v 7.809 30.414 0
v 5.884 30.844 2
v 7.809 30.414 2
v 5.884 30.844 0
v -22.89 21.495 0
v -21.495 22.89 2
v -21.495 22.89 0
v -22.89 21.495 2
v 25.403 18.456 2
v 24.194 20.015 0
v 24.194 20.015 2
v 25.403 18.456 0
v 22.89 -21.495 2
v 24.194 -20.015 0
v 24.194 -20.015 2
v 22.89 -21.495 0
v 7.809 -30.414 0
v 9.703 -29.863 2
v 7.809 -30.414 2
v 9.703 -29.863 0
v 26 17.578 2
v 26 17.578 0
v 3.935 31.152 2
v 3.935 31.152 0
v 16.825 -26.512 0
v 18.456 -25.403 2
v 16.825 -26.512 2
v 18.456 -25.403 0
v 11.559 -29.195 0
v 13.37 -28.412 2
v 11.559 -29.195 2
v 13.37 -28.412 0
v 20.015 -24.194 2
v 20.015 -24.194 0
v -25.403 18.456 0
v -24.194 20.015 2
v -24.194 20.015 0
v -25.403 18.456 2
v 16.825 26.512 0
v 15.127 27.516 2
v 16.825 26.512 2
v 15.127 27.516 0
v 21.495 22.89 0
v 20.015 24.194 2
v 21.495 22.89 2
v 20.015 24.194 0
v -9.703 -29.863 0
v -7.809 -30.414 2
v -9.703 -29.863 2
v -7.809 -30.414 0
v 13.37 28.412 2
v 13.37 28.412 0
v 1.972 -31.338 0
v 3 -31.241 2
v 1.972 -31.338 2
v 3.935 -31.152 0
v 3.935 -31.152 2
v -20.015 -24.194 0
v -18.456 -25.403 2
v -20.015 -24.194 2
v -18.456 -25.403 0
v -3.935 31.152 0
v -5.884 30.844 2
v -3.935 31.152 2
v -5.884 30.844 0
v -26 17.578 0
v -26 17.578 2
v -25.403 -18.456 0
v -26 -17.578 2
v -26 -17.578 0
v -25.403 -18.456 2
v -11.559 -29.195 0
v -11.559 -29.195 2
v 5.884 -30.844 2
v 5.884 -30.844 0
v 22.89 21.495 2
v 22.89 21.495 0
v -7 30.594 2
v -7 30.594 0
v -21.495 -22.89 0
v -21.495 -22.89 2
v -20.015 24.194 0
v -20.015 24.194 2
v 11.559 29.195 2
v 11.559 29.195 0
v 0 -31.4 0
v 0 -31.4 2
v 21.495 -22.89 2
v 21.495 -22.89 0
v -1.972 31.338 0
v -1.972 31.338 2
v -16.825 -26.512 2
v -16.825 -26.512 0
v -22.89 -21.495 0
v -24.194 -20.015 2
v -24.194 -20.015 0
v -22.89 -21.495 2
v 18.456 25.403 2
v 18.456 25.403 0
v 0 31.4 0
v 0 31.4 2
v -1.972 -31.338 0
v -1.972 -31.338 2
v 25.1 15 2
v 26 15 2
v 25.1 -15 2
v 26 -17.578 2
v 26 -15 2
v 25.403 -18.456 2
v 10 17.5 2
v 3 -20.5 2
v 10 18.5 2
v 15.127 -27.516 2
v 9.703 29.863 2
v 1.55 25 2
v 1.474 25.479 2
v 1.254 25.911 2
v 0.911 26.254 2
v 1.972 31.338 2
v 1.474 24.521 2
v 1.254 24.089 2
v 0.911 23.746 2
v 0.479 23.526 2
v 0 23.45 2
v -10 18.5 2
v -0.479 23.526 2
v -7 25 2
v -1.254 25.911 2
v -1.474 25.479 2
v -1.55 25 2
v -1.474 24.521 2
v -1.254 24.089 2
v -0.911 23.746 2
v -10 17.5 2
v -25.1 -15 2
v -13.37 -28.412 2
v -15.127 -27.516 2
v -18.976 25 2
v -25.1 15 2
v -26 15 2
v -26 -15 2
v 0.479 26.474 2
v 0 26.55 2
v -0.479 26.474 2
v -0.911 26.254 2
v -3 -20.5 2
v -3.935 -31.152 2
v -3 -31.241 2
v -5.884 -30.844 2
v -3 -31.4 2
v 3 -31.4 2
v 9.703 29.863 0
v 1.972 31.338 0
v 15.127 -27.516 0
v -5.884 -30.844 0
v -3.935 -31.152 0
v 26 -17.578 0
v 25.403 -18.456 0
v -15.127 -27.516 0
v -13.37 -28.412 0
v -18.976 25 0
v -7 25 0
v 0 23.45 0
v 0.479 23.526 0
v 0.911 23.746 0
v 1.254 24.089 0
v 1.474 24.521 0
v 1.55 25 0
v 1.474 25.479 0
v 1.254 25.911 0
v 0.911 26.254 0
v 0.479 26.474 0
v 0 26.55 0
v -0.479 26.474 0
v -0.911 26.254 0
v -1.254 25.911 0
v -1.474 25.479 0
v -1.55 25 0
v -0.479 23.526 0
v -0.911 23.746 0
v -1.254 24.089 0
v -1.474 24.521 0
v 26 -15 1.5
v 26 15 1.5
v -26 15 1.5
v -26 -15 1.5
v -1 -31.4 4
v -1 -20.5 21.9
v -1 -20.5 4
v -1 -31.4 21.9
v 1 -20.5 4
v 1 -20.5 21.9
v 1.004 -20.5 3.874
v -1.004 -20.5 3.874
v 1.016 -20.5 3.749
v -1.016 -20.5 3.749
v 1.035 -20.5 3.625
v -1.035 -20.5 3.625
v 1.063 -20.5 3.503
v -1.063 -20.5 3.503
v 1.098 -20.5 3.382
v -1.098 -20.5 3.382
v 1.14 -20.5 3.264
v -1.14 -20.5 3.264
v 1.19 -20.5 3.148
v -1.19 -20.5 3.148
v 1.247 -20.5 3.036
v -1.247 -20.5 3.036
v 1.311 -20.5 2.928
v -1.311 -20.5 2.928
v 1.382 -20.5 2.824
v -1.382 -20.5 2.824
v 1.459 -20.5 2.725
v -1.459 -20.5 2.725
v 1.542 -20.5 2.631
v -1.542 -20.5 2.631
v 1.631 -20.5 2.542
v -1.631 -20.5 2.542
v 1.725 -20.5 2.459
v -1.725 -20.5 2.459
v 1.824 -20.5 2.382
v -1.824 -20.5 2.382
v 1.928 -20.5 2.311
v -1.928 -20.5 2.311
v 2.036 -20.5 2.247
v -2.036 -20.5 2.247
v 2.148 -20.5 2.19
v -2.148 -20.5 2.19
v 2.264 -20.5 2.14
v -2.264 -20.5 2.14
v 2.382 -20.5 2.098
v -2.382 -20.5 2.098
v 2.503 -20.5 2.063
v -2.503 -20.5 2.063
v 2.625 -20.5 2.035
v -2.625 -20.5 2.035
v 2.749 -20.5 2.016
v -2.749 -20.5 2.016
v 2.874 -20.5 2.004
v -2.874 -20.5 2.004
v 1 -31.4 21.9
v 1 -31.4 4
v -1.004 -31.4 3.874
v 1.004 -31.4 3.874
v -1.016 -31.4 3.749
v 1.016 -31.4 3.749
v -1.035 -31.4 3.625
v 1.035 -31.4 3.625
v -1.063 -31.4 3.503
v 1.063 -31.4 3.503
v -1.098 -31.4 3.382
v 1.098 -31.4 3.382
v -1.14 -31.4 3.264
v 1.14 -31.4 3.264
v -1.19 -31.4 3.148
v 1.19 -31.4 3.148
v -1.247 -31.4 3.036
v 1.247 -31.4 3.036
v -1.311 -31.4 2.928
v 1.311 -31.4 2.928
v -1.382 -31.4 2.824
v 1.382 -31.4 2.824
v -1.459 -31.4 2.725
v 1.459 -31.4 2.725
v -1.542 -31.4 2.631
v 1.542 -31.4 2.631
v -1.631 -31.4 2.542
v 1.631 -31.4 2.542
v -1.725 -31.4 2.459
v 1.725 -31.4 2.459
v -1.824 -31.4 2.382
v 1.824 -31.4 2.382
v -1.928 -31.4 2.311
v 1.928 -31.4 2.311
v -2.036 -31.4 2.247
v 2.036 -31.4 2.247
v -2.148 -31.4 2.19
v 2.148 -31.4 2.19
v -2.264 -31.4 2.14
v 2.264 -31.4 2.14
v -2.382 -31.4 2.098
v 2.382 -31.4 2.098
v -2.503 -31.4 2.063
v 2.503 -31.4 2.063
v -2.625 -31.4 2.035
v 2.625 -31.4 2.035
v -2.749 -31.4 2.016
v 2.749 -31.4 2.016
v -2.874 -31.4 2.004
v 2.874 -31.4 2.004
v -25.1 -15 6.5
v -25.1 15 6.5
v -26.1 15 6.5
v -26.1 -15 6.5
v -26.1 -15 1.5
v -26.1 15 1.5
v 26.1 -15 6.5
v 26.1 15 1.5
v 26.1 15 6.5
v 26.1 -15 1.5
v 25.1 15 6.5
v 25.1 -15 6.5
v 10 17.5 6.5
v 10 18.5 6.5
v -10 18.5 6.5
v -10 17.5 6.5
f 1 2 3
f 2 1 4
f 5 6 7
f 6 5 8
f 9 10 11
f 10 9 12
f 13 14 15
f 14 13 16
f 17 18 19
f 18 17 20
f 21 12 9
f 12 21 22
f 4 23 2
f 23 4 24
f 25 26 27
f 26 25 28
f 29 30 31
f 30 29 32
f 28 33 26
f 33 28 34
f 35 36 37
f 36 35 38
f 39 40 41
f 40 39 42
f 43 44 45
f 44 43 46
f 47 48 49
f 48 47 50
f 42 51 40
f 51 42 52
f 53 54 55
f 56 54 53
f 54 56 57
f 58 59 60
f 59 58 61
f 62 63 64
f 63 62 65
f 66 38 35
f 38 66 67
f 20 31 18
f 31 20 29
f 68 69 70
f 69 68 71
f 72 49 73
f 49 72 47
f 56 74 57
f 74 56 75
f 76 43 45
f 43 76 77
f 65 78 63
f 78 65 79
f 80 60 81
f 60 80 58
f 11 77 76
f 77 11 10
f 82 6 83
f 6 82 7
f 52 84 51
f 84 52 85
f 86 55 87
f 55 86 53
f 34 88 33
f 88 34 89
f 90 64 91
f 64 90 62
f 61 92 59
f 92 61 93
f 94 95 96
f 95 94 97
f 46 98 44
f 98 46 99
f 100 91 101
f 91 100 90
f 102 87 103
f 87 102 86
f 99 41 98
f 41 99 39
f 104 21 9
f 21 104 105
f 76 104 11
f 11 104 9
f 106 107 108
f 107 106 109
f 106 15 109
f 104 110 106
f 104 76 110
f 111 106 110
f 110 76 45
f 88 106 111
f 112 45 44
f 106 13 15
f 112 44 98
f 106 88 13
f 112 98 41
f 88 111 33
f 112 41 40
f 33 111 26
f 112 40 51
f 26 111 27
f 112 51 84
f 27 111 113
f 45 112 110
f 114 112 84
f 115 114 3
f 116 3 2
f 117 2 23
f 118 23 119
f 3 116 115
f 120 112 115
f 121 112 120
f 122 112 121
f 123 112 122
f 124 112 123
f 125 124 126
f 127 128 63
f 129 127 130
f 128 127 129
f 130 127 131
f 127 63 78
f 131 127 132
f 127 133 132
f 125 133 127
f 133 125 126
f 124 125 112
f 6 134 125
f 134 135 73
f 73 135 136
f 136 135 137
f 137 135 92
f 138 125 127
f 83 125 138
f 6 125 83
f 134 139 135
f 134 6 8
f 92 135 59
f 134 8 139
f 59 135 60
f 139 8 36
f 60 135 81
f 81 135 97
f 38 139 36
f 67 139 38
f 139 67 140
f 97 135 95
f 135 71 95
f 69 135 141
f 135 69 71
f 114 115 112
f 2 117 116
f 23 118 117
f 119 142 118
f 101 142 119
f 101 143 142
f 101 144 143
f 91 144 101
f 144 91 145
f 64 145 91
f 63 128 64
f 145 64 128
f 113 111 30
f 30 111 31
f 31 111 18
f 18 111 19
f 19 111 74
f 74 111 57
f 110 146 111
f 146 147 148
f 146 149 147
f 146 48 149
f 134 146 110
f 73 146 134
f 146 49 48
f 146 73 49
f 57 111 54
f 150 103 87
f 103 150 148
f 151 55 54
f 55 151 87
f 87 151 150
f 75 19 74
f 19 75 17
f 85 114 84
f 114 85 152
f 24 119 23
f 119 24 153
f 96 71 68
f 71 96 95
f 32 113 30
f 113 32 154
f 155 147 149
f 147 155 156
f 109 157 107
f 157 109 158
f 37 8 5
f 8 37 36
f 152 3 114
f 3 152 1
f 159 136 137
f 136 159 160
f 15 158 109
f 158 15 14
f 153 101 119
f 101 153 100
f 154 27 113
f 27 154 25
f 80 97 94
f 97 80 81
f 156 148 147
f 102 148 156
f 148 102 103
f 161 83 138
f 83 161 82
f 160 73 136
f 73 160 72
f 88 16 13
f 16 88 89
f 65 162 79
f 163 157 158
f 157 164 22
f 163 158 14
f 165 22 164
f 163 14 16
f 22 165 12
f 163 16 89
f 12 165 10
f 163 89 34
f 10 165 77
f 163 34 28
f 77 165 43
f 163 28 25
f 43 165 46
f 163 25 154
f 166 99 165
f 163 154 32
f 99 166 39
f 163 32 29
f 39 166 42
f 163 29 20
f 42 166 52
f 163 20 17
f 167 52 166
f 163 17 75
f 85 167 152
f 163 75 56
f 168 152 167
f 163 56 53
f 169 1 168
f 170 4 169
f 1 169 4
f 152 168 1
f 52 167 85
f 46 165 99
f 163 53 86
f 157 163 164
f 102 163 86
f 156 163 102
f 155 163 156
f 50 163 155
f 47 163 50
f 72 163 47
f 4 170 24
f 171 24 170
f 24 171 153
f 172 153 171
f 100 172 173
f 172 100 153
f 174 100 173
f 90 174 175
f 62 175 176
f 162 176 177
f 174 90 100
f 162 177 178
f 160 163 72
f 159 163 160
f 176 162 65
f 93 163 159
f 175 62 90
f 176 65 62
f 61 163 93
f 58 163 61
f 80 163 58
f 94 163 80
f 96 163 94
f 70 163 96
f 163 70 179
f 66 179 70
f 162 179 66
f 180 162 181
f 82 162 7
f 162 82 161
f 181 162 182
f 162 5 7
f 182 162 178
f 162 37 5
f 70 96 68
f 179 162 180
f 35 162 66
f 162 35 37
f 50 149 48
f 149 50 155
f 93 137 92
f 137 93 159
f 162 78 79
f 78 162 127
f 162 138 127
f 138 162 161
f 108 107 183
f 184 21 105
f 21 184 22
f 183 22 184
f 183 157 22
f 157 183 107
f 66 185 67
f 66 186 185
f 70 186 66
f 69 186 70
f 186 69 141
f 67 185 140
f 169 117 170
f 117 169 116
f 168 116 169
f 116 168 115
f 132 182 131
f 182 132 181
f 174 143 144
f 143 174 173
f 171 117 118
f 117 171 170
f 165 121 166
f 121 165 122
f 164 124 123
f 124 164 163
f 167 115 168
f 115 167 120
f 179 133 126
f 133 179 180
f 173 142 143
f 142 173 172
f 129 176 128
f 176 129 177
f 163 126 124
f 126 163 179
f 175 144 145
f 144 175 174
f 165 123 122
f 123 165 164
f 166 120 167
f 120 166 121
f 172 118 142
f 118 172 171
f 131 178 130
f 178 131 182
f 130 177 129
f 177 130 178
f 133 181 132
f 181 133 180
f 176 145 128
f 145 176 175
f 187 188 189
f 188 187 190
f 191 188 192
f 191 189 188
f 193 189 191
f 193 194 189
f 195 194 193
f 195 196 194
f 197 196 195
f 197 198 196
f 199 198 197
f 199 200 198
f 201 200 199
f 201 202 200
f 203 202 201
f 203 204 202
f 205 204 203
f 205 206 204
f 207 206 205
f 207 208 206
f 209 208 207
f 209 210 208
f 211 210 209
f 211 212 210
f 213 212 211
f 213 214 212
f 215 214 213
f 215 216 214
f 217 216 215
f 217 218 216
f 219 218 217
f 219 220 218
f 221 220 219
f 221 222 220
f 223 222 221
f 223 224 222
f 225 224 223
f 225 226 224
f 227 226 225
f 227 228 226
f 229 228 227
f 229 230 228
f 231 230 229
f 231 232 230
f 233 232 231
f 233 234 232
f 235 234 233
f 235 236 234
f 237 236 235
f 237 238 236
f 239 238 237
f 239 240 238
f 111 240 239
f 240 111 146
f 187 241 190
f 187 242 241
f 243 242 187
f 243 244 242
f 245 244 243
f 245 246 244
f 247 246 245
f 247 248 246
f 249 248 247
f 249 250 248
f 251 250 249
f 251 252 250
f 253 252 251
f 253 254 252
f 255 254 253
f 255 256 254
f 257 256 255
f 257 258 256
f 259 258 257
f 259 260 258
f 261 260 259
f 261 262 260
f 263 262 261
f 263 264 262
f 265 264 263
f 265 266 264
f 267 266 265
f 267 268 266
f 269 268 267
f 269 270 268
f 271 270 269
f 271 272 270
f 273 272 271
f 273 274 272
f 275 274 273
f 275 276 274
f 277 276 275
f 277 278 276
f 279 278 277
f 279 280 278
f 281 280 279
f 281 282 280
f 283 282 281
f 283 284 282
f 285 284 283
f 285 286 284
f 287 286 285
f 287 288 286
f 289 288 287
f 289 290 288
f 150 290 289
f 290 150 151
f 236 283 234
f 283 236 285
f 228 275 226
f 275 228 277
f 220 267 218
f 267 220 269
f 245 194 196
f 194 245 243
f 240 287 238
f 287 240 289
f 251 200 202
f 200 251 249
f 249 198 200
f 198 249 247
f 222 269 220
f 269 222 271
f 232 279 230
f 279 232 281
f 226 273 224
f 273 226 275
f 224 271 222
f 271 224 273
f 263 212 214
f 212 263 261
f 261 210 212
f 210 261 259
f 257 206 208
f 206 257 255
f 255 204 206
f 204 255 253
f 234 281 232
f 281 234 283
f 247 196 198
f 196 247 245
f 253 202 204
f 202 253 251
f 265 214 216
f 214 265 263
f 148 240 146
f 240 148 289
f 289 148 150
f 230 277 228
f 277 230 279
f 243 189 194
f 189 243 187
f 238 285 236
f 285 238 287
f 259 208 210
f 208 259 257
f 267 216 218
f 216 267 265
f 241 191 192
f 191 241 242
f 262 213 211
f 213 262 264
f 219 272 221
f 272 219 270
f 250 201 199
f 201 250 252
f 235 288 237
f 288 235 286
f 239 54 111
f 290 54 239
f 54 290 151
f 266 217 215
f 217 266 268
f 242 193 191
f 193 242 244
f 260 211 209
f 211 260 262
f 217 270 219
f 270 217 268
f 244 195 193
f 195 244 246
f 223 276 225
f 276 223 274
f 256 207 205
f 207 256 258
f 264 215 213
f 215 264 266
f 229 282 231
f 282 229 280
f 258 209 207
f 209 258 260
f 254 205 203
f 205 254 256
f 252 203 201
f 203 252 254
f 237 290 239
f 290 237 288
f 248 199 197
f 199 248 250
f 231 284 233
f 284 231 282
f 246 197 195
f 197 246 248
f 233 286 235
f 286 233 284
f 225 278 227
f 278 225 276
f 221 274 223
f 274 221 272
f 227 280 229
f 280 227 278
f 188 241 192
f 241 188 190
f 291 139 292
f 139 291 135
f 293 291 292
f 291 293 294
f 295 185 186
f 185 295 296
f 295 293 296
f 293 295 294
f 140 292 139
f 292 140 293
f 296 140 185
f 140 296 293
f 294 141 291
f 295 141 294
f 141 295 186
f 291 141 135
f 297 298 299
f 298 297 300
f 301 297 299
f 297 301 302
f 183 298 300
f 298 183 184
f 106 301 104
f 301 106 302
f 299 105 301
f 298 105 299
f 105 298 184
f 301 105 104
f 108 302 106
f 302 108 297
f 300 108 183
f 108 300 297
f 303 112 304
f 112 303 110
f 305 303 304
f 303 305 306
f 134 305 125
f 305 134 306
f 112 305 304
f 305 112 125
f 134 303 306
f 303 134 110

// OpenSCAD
// file: config.scad
clearance = 0.1;

base_height = 4;
boards_angle = 39;

inner_diameter = 63;
outer_diameter = 69;

// distance between the top of the base and the bottom edge of the display
display_height = 34.5;
display_angle = 150;

cover_height = 100; // not including cap
cover_holes = 20;
cover_ring_dia = 56;
cover_layers = 2;
cover_window_height = 30;
cover_window_angle = 125;
cover_style="plain";

insert_dia = 4;
screw_angles = [90, 270];

// Thinnest wall you can print. In doubt, use layer height
thin_wall = 0.3;
// main file
include <config.scad>;

// Holder used to keep the particulate sensor on top of the tower
module holder(inner_diameter) {
    $fn = 100;
    difference() {
        cylinder(d=inner_diameter - clearance * 2, h=2);
        // Clearance for cable ribbon
        translate([-70, 25, 0])
            cube([inner_diameter, inner_diameter, 3]);

        // clearance for cover insertion
        translate([26, -25, 0]) cube([100, 100, 10]);
        translate([-126, -25, 0]) cube([100, 100, 10]);
        // screw hole
        translate([0, 25, 0])
            cylinder(d=3 + clearance, h=11, $fn=20);
    }
    // Barrier to prevent airflow mixing between the inlet and the outlet
    translate([-3, -inner_diameter/2 + clearance, 2])
        difference() {
            cube([6, 11 - clearance, 20 - clearance]);
            for( i = [0, 1]) {
                translate([i * 4, 0, 2])
                    cube([2, 11 - clearance, 20 - clearance]);
                translate([i * 6, 11, 2])
                    rotate([90, 0, 0])
                        cylinder(d=4, h=11);
            }
        }
    // sensor side holder
    for(i = [-1, 1])
        translate([i * (25 + clearance + 0.5), 0, 4])
            cube([1, 30, 5], center=true);
    // sensor back holder
    translate([0, 18, 4])
        cube([20, 1, 5], center=true);
}

holder(inner_diameter);
